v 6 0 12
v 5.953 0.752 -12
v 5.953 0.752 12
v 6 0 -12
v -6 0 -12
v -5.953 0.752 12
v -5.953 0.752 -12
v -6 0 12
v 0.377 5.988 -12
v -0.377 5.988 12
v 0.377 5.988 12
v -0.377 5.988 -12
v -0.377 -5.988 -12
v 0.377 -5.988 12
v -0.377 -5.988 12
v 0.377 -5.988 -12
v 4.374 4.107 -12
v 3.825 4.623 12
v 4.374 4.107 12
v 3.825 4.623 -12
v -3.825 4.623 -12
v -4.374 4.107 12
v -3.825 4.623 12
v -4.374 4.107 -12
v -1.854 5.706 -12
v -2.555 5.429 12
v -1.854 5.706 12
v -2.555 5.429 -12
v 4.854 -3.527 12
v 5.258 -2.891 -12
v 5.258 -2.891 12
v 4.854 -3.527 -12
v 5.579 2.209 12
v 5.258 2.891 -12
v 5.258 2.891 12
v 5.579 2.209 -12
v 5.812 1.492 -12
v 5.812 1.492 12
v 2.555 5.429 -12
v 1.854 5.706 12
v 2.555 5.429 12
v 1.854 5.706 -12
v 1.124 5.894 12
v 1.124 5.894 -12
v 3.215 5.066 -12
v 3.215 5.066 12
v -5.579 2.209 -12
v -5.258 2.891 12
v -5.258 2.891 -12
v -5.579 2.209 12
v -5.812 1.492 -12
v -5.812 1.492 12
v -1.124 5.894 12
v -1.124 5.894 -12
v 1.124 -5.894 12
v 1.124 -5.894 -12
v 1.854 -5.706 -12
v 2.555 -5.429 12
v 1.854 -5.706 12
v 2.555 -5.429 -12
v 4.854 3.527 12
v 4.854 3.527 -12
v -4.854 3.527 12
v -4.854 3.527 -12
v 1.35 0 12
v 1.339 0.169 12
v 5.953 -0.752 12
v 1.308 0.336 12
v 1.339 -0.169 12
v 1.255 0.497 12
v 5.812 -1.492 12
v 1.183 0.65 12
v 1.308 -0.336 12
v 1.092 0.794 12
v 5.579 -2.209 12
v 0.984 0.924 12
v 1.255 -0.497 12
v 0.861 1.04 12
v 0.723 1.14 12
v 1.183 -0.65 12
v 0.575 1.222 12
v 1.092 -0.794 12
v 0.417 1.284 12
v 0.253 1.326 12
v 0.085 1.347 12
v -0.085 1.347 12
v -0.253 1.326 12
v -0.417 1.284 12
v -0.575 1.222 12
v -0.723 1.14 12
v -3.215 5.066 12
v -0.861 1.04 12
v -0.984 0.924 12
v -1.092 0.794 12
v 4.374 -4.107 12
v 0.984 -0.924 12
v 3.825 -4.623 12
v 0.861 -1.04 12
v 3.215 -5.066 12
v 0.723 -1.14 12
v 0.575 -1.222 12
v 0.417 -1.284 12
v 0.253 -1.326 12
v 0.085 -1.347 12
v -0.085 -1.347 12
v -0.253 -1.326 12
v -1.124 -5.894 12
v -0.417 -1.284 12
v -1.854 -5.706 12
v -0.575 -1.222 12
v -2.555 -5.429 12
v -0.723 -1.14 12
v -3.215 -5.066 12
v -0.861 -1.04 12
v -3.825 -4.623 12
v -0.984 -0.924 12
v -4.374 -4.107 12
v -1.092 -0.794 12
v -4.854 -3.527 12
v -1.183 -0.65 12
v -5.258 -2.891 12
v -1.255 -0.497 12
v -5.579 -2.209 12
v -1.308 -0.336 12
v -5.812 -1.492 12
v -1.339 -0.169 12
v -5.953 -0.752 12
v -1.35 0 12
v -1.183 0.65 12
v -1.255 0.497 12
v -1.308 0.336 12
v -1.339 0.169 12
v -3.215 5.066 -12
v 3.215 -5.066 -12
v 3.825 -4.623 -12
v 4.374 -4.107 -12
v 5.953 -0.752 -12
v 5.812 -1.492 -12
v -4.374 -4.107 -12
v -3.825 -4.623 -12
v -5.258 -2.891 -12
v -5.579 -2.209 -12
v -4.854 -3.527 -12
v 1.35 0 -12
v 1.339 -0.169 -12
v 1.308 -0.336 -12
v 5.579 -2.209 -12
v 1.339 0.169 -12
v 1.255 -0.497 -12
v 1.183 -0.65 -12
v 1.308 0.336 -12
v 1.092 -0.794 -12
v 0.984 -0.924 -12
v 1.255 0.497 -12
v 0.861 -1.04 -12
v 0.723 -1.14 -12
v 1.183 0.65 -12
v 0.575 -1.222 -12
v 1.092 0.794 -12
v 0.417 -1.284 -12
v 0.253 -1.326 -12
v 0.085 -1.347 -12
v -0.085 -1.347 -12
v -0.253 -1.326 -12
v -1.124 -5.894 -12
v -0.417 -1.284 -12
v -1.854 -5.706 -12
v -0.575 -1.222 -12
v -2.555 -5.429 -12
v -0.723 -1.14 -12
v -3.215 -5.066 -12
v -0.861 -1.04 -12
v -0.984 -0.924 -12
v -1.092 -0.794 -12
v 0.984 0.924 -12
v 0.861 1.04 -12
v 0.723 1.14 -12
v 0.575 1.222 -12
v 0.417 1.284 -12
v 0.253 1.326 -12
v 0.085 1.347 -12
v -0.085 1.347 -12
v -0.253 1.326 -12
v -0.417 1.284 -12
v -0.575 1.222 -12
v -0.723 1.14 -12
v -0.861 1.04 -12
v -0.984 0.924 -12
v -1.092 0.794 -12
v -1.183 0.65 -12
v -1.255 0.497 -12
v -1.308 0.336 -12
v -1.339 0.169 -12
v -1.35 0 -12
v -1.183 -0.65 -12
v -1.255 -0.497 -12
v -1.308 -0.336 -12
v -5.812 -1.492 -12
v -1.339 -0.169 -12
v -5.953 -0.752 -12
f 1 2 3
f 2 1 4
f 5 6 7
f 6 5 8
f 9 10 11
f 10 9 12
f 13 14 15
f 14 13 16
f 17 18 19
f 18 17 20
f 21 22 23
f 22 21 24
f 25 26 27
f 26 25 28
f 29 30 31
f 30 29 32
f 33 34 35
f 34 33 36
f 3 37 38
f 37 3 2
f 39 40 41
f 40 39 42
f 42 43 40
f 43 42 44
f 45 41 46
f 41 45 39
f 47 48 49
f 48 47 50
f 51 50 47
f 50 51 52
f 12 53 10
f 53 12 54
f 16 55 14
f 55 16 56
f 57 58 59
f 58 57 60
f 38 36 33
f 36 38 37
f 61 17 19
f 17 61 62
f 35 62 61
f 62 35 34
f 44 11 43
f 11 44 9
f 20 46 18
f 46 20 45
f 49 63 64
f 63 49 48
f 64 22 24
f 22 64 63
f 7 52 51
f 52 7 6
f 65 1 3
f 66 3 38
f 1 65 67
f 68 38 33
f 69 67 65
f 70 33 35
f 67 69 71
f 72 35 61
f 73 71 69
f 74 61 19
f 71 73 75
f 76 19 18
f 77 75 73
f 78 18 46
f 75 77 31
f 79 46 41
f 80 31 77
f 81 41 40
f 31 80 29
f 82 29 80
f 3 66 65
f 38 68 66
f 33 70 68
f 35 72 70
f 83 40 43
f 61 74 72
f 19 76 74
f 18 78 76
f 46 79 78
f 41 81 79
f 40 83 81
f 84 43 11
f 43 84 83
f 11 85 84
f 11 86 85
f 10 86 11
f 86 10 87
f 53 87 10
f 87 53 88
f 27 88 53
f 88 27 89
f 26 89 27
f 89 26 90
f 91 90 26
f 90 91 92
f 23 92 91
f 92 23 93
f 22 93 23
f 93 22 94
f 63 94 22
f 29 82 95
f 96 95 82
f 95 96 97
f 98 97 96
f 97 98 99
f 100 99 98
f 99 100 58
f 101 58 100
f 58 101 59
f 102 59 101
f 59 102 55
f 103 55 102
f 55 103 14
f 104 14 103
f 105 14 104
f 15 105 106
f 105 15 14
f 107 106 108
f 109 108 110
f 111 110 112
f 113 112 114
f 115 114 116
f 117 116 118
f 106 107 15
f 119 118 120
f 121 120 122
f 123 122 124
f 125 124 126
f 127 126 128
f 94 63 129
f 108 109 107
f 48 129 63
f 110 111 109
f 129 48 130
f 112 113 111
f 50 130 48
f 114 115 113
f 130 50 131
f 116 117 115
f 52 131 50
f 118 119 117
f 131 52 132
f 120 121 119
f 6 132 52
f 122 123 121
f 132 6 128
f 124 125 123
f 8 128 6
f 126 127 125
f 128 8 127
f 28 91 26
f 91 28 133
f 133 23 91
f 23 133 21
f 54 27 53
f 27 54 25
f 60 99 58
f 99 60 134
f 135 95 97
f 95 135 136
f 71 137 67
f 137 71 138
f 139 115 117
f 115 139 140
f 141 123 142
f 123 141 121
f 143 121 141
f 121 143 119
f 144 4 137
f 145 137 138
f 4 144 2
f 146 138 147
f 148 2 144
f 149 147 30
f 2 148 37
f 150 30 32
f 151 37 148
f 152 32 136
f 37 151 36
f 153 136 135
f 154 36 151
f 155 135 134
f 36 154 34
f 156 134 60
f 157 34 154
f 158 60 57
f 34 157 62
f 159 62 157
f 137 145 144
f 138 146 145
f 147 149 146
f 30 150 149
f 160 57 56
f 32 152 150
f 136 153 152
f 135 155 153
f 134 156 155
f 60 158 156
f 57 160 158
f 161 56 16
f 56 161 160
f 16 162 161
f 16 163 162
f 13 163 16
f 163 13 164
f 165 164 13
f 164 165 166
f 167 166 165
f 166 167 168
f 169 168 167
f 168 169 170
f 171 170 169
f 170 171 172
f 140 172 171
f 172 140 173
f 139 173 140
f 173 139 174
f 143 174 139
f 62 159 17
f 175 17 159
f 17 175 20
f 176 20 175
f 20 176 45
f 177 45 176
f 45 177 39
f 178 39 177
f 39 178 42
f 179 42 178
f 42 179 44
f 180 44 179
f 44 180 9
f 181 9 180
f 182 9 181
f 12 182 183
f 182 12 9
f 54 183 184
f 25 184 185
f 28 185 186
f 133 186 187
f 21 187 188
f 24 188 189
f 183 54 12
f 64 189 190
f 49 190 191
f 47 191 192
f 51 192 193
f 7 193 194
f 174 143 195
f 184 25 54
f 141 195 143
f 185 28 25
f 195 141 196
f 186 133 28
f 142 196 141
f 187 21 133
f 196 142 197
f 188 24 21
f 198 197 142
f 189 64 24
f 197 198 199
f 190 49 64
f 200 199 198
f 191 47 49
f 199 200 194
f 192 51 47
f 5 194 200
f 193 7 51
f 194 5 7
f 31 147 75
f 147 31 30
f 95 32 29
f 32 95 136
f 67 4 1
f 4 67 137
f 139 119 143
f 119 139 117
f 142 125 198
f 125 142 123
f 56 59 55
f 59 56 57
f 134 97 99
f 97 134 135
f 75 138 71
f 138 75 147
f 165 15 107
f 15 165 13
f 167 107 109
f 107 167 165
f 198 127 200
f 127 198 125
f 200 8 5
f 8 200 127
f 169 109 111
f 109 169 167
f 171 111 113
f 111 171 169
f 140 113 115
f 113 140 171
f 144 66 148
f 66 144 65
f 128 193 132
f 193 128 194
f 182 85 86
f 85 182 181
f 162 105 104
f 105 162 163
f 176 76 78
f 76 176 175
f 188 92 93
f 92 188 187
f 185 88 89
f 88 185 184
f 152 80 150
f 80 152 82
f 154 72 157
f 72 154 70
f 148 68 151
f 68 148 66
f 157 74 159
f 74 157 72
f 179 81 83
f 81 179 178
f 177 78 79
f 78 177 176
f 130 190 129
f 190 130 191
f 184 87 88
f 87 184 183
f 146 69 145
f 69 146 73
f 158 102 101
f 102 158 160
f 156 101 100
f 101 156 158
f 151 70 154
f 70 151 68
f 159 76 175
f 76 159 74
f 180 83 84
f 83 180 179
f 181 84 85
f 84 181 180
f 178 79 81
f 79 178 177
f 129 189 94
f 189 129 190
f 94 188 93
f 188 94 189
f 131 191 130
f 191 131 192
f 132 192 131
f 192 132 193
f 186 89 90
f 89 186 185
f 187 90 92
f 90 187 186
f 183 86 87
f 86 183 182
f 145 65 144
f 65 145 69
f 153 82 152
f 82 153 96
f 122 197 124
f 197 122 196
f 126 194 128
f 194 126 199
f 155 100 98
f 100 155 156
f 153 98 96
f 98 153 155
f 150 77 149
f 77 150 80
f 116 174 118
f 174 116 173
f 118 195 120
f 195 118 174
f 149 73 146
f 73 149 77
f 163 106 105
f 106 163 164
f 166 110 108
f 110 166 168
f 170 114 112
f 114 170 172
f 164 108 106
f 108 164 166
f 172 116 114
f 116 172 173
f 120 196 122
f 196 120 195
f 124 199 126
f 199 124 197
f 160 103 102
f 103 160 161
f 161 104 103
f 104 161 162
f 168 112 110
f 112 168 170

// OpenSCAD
$fn = 50;


difference() {
	union() {
		translate(v = [0, 0, -12.0000000000]) {
			cylinder(h = 24, r = 6.0000000000);
		}
	}
	union() {
		translate(v = [0, 0, -100.0000000000]) {
			cylinder(h = 200, r = 1.3500000000);
		}
	}
}
